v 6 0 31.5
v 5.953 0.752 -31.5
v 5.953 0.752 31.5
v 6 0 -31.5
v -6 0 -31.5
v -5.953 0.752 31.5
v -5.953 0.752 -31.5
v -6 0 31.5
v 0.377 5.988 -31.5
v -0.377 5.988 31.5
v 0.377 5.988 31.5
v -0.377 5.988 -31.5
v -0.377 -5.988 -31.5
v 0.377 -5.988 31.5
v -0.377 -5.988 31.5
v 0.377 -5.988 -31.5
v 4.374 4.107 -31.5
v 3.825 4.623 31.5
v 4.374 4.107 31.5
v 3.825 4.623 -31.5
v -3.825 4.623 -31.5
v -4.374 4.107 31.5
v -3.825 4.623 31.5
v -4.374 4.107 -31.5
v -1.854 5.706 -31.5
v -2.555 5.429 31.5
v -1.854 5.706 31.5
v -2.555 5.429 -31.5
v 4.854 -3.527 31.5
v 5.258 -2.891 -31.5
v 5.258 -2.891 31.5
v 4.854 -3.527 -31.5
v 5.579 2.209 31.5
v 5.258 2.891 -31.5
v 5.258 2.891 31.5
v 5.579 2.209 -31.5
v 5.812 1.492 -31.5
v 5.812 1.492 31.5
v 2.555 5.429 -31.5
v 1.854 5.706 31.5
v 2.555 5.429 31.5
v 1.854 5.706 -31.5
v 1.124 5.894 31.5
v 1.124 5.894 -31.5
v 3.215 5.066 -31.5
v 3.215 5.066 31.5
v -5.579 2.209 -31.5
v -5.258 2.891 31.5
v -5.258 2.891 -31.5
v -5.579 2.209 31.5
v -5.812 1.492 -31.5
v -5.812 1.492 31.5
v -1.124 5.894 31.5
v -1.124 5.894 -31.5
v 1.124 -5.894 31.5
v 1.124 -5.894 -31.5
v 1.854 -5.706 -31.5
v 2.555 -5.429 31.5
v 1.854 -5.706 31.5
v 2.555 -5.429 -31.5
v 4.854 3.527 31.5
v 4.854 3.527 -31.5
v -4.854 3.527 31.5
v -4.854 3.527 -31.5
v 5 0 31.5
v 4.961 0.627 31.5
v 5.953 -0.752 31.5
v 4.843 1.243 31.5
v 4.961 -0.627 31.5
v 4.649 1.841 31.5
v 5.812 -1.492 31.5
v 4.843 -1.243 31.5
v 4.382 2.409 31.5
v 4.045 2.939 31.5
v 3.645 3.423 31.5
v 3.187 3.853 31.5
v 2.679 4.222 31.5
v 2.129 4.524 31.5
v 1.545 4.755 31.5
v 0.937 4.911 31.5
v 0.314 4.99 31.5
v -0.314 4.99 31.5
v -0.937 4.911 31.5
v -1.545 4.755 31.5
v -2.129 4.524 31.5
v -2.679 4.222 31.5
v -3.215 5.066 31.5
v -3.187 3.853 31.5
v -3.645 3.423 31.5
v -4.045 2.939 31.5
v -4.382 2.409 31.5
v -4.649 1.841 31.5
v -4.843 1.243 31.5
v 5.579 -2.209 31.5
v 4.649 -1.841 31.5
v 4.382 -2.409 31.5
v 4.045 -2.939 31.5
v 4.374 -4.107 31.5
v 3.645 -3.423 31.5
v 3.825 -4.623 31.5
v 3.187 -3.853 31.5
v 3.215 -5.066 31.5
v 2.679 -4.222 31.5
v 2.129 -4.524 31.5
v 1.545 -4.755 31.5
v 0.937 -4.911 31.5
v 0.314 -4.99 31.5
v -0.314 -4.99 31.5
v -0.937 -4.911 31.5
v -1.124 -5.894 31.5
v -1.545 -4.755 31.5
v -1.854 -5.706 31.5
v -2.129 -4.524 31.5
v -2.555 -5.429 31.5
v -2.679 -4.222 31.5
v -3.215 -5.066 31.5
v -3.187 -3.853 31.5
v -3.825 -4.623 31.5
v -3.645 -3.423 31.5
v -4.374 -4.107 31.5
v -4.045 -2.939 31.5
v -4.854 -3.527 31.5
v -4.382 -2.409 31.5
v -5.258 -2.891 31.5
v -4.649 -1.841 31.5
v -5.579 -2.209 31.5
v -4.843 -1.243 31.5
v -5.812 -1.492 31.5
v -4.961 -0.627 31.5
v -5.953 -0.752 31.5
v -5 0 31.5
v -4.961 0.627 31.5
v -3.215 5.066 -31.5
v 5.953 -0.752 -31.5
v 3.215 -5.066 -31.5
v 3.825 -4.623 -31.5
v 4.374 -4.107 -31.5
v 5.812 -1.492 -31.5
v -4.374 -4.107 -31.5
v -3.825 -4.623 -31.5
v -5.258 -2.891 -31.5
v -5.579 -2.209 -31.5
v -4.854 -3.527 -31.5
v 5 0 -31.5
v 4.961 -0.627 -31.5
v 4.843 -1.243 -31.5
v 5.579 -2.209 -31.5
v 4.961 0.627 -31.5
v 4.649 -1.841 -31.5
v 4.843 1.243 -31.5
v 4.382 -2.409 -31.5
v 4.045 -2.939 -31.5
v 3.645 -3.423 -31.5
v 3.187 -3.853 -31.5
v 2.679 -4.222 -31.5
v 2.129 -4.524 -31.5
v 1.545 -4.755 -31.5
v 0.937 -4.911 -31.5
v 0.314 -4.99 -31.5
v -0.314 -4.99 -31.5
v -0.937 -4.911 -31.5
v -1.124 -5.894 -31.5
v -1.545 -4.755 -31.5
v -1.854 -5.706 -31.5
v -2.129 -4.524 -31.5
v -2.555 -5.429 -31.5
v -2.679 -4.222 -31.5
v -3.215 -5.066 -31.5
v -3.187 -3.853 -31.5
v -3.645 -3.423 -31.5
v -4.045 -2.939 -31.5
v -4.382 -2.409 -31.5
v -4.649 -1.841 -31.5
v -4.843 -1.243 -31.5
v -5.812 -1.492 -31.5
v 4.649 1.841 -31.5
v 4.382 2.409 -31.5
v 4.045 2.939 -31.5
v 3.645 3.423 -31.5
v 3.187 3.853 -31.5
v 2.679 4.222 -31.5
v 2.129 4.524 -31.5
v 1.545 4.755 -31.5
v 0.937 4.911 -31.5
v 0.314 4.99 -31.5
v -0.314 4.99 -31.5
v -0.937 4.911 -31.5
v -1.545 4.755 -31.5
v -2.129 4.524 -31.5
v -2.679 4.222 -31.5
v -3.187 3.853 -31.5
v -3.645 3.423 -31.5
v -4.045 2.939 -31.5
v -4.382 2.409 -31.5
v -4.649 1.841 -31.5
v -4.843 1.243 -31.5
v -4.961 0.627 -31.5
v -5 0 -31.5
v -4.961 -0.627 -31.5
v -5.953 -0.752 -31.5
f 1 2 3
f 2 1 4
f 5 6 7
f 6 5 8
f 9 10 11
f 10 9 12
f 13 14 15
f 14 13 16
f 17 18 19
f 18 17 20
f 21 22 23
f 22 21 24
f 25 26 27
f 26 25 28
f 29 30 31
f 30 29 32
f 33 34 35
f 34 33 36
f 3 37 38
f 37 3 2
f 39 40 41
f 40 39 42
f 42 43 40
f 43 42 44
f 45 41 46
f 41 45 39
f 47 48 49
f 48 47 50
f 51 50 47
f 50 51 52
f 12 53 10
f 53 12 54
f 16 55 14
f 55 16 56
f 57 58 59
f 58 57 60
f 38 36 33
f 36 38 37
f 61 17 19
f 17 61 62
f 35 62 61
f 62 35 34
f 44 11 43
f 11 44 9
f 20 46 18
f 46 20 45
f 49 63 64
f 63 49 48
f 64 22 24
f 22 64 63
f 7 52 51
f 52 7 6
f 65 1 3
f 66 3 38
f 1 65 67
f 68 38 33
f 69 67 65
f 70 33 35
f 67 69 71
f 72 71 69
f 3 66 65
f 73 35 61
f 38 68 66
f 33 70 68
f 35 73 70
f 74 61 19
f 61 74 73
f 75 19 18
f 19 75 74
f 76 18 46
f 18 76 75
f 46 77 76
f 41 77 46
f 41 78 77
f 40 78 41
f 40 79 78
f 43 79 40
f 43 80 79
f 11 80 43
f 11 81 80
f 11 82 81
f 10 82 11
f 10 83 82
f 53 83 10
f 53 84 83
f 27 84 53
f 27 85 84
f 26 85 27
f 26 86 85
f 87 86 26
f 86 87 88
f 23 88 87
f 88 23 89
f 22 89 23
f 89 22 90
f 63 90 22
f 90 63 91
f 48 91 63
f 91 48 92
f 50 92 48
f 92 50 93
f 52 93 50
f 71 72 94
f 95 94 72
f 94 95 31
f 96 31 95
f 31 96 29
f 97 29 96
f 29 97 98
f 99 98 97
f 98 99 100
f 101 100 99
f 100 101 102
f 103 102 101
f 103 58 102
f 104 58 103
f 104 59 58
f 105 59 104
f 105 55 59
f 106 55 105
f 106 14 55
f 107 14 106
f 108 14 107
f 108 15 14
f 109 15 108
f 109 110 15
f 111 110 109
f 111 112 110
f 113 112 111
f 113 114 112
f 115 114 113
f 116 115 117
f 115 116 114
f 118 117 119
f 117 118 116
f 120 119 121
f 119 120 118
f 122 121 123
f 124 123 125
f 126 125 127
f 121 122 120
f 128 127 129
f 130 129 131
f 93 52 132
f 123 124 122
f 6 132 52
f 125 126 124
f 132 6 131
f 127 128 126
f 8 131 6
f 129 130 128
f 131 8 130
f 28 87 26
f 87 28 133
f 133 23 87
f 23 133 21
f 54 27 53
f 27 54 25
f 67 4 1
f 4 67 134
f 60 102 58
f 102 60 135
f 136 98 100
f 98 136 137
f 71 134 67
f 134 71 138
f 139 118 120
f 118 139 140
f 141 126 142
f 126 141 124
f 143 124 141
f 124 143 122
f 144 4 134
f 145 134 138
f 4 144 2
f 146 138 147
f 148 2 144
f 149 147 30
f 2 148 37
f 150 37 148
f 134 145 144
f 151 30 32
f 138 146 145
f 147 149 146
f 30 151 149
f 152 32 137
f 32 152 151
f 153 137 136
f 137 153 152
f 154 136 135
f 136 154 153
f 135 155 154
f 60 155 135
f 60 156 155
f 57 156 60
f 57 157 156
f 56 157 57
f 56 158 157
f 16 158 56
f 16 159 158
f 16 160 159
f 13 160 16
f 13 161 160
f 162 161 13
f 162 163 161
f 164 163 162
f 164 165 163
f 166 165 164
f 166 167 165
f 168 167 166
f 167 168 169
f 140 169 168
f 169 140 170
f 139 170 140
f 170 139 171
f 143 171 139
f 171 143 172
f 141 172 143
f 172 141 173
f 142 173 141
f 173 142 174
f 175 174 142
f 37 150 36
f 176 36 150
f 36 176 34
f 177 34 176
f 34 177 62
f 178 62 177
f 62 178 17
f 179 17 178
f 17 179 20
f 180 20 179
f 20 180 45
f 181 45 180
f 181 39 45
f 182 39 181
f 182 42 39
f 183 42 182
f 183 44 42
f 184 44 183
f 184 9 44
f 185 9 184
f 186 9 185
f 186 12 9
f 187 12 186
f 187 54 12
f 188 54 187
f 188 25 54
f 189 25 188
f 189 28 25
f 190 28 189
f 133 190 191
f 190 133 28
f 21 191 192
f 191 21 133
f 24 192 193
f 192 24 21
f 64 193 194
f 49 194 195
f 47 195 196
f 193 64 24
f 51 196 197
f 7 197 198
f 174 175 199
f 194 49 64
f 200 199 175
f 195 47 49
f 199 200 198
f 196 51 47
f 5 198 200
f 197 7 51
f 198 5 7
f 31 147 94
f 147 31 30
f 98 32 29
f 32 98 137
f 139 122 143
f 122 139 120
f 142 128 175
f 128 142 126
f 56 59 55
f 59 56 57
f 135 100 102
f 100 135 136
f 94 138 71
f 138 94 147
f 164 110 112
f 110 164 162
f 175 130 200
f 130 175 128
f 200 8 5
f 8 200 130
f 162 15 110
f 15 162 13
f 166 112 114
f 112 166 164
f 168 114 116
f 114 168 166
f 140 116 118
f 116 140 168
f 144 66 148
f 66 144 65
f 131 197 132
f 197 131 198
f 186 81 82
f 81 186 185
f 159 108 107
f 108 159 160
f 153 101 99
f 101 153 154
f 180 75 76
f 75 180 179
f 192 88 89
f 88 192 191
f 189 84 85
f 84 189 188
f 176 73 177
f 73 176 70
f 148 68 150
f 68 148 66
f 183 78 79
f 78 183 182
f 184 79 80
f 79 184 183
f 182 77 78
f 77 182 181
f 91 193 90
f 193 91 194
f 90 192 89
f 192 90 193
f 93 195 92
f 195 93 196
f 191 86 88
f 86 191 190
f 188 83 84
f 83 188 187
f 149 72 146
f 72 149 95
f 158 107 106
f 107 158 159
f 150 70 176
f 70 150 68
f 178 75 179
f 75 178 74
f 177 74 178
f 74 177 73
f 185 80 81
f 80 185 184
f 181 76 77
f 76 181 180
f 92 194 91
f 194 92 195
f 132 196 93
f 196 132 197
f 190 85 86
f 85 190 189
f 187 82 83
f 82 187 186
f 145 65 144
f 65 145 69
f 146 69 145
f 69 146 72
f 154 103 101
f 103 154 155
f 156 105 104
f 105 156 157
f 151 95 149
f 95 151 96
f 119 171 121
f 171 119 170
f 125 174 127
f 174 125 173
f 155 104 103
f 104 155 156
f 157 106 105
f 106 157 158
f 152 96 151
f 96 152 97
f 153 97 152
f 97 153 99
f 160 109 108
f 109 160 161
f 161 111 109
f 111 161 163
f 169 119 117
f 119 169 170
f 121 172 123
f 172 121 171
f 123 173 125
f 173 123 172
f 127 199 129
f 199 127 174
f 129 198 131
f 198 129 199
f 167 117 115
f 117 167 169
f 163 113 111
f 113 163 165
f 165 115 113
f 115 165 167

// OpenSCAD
$fn = 50;


difference() {
	union() {
		translate(v = [0, 0, -31.5000000000]) {
			cylinder(h = 63, r = 6.0000000000);
		}
	}
	union() {
		translate(v = [0, 0, -100.0000000000]) {
			cylinder(h = 200, r = 5.0000000000);
		}
	}
}
